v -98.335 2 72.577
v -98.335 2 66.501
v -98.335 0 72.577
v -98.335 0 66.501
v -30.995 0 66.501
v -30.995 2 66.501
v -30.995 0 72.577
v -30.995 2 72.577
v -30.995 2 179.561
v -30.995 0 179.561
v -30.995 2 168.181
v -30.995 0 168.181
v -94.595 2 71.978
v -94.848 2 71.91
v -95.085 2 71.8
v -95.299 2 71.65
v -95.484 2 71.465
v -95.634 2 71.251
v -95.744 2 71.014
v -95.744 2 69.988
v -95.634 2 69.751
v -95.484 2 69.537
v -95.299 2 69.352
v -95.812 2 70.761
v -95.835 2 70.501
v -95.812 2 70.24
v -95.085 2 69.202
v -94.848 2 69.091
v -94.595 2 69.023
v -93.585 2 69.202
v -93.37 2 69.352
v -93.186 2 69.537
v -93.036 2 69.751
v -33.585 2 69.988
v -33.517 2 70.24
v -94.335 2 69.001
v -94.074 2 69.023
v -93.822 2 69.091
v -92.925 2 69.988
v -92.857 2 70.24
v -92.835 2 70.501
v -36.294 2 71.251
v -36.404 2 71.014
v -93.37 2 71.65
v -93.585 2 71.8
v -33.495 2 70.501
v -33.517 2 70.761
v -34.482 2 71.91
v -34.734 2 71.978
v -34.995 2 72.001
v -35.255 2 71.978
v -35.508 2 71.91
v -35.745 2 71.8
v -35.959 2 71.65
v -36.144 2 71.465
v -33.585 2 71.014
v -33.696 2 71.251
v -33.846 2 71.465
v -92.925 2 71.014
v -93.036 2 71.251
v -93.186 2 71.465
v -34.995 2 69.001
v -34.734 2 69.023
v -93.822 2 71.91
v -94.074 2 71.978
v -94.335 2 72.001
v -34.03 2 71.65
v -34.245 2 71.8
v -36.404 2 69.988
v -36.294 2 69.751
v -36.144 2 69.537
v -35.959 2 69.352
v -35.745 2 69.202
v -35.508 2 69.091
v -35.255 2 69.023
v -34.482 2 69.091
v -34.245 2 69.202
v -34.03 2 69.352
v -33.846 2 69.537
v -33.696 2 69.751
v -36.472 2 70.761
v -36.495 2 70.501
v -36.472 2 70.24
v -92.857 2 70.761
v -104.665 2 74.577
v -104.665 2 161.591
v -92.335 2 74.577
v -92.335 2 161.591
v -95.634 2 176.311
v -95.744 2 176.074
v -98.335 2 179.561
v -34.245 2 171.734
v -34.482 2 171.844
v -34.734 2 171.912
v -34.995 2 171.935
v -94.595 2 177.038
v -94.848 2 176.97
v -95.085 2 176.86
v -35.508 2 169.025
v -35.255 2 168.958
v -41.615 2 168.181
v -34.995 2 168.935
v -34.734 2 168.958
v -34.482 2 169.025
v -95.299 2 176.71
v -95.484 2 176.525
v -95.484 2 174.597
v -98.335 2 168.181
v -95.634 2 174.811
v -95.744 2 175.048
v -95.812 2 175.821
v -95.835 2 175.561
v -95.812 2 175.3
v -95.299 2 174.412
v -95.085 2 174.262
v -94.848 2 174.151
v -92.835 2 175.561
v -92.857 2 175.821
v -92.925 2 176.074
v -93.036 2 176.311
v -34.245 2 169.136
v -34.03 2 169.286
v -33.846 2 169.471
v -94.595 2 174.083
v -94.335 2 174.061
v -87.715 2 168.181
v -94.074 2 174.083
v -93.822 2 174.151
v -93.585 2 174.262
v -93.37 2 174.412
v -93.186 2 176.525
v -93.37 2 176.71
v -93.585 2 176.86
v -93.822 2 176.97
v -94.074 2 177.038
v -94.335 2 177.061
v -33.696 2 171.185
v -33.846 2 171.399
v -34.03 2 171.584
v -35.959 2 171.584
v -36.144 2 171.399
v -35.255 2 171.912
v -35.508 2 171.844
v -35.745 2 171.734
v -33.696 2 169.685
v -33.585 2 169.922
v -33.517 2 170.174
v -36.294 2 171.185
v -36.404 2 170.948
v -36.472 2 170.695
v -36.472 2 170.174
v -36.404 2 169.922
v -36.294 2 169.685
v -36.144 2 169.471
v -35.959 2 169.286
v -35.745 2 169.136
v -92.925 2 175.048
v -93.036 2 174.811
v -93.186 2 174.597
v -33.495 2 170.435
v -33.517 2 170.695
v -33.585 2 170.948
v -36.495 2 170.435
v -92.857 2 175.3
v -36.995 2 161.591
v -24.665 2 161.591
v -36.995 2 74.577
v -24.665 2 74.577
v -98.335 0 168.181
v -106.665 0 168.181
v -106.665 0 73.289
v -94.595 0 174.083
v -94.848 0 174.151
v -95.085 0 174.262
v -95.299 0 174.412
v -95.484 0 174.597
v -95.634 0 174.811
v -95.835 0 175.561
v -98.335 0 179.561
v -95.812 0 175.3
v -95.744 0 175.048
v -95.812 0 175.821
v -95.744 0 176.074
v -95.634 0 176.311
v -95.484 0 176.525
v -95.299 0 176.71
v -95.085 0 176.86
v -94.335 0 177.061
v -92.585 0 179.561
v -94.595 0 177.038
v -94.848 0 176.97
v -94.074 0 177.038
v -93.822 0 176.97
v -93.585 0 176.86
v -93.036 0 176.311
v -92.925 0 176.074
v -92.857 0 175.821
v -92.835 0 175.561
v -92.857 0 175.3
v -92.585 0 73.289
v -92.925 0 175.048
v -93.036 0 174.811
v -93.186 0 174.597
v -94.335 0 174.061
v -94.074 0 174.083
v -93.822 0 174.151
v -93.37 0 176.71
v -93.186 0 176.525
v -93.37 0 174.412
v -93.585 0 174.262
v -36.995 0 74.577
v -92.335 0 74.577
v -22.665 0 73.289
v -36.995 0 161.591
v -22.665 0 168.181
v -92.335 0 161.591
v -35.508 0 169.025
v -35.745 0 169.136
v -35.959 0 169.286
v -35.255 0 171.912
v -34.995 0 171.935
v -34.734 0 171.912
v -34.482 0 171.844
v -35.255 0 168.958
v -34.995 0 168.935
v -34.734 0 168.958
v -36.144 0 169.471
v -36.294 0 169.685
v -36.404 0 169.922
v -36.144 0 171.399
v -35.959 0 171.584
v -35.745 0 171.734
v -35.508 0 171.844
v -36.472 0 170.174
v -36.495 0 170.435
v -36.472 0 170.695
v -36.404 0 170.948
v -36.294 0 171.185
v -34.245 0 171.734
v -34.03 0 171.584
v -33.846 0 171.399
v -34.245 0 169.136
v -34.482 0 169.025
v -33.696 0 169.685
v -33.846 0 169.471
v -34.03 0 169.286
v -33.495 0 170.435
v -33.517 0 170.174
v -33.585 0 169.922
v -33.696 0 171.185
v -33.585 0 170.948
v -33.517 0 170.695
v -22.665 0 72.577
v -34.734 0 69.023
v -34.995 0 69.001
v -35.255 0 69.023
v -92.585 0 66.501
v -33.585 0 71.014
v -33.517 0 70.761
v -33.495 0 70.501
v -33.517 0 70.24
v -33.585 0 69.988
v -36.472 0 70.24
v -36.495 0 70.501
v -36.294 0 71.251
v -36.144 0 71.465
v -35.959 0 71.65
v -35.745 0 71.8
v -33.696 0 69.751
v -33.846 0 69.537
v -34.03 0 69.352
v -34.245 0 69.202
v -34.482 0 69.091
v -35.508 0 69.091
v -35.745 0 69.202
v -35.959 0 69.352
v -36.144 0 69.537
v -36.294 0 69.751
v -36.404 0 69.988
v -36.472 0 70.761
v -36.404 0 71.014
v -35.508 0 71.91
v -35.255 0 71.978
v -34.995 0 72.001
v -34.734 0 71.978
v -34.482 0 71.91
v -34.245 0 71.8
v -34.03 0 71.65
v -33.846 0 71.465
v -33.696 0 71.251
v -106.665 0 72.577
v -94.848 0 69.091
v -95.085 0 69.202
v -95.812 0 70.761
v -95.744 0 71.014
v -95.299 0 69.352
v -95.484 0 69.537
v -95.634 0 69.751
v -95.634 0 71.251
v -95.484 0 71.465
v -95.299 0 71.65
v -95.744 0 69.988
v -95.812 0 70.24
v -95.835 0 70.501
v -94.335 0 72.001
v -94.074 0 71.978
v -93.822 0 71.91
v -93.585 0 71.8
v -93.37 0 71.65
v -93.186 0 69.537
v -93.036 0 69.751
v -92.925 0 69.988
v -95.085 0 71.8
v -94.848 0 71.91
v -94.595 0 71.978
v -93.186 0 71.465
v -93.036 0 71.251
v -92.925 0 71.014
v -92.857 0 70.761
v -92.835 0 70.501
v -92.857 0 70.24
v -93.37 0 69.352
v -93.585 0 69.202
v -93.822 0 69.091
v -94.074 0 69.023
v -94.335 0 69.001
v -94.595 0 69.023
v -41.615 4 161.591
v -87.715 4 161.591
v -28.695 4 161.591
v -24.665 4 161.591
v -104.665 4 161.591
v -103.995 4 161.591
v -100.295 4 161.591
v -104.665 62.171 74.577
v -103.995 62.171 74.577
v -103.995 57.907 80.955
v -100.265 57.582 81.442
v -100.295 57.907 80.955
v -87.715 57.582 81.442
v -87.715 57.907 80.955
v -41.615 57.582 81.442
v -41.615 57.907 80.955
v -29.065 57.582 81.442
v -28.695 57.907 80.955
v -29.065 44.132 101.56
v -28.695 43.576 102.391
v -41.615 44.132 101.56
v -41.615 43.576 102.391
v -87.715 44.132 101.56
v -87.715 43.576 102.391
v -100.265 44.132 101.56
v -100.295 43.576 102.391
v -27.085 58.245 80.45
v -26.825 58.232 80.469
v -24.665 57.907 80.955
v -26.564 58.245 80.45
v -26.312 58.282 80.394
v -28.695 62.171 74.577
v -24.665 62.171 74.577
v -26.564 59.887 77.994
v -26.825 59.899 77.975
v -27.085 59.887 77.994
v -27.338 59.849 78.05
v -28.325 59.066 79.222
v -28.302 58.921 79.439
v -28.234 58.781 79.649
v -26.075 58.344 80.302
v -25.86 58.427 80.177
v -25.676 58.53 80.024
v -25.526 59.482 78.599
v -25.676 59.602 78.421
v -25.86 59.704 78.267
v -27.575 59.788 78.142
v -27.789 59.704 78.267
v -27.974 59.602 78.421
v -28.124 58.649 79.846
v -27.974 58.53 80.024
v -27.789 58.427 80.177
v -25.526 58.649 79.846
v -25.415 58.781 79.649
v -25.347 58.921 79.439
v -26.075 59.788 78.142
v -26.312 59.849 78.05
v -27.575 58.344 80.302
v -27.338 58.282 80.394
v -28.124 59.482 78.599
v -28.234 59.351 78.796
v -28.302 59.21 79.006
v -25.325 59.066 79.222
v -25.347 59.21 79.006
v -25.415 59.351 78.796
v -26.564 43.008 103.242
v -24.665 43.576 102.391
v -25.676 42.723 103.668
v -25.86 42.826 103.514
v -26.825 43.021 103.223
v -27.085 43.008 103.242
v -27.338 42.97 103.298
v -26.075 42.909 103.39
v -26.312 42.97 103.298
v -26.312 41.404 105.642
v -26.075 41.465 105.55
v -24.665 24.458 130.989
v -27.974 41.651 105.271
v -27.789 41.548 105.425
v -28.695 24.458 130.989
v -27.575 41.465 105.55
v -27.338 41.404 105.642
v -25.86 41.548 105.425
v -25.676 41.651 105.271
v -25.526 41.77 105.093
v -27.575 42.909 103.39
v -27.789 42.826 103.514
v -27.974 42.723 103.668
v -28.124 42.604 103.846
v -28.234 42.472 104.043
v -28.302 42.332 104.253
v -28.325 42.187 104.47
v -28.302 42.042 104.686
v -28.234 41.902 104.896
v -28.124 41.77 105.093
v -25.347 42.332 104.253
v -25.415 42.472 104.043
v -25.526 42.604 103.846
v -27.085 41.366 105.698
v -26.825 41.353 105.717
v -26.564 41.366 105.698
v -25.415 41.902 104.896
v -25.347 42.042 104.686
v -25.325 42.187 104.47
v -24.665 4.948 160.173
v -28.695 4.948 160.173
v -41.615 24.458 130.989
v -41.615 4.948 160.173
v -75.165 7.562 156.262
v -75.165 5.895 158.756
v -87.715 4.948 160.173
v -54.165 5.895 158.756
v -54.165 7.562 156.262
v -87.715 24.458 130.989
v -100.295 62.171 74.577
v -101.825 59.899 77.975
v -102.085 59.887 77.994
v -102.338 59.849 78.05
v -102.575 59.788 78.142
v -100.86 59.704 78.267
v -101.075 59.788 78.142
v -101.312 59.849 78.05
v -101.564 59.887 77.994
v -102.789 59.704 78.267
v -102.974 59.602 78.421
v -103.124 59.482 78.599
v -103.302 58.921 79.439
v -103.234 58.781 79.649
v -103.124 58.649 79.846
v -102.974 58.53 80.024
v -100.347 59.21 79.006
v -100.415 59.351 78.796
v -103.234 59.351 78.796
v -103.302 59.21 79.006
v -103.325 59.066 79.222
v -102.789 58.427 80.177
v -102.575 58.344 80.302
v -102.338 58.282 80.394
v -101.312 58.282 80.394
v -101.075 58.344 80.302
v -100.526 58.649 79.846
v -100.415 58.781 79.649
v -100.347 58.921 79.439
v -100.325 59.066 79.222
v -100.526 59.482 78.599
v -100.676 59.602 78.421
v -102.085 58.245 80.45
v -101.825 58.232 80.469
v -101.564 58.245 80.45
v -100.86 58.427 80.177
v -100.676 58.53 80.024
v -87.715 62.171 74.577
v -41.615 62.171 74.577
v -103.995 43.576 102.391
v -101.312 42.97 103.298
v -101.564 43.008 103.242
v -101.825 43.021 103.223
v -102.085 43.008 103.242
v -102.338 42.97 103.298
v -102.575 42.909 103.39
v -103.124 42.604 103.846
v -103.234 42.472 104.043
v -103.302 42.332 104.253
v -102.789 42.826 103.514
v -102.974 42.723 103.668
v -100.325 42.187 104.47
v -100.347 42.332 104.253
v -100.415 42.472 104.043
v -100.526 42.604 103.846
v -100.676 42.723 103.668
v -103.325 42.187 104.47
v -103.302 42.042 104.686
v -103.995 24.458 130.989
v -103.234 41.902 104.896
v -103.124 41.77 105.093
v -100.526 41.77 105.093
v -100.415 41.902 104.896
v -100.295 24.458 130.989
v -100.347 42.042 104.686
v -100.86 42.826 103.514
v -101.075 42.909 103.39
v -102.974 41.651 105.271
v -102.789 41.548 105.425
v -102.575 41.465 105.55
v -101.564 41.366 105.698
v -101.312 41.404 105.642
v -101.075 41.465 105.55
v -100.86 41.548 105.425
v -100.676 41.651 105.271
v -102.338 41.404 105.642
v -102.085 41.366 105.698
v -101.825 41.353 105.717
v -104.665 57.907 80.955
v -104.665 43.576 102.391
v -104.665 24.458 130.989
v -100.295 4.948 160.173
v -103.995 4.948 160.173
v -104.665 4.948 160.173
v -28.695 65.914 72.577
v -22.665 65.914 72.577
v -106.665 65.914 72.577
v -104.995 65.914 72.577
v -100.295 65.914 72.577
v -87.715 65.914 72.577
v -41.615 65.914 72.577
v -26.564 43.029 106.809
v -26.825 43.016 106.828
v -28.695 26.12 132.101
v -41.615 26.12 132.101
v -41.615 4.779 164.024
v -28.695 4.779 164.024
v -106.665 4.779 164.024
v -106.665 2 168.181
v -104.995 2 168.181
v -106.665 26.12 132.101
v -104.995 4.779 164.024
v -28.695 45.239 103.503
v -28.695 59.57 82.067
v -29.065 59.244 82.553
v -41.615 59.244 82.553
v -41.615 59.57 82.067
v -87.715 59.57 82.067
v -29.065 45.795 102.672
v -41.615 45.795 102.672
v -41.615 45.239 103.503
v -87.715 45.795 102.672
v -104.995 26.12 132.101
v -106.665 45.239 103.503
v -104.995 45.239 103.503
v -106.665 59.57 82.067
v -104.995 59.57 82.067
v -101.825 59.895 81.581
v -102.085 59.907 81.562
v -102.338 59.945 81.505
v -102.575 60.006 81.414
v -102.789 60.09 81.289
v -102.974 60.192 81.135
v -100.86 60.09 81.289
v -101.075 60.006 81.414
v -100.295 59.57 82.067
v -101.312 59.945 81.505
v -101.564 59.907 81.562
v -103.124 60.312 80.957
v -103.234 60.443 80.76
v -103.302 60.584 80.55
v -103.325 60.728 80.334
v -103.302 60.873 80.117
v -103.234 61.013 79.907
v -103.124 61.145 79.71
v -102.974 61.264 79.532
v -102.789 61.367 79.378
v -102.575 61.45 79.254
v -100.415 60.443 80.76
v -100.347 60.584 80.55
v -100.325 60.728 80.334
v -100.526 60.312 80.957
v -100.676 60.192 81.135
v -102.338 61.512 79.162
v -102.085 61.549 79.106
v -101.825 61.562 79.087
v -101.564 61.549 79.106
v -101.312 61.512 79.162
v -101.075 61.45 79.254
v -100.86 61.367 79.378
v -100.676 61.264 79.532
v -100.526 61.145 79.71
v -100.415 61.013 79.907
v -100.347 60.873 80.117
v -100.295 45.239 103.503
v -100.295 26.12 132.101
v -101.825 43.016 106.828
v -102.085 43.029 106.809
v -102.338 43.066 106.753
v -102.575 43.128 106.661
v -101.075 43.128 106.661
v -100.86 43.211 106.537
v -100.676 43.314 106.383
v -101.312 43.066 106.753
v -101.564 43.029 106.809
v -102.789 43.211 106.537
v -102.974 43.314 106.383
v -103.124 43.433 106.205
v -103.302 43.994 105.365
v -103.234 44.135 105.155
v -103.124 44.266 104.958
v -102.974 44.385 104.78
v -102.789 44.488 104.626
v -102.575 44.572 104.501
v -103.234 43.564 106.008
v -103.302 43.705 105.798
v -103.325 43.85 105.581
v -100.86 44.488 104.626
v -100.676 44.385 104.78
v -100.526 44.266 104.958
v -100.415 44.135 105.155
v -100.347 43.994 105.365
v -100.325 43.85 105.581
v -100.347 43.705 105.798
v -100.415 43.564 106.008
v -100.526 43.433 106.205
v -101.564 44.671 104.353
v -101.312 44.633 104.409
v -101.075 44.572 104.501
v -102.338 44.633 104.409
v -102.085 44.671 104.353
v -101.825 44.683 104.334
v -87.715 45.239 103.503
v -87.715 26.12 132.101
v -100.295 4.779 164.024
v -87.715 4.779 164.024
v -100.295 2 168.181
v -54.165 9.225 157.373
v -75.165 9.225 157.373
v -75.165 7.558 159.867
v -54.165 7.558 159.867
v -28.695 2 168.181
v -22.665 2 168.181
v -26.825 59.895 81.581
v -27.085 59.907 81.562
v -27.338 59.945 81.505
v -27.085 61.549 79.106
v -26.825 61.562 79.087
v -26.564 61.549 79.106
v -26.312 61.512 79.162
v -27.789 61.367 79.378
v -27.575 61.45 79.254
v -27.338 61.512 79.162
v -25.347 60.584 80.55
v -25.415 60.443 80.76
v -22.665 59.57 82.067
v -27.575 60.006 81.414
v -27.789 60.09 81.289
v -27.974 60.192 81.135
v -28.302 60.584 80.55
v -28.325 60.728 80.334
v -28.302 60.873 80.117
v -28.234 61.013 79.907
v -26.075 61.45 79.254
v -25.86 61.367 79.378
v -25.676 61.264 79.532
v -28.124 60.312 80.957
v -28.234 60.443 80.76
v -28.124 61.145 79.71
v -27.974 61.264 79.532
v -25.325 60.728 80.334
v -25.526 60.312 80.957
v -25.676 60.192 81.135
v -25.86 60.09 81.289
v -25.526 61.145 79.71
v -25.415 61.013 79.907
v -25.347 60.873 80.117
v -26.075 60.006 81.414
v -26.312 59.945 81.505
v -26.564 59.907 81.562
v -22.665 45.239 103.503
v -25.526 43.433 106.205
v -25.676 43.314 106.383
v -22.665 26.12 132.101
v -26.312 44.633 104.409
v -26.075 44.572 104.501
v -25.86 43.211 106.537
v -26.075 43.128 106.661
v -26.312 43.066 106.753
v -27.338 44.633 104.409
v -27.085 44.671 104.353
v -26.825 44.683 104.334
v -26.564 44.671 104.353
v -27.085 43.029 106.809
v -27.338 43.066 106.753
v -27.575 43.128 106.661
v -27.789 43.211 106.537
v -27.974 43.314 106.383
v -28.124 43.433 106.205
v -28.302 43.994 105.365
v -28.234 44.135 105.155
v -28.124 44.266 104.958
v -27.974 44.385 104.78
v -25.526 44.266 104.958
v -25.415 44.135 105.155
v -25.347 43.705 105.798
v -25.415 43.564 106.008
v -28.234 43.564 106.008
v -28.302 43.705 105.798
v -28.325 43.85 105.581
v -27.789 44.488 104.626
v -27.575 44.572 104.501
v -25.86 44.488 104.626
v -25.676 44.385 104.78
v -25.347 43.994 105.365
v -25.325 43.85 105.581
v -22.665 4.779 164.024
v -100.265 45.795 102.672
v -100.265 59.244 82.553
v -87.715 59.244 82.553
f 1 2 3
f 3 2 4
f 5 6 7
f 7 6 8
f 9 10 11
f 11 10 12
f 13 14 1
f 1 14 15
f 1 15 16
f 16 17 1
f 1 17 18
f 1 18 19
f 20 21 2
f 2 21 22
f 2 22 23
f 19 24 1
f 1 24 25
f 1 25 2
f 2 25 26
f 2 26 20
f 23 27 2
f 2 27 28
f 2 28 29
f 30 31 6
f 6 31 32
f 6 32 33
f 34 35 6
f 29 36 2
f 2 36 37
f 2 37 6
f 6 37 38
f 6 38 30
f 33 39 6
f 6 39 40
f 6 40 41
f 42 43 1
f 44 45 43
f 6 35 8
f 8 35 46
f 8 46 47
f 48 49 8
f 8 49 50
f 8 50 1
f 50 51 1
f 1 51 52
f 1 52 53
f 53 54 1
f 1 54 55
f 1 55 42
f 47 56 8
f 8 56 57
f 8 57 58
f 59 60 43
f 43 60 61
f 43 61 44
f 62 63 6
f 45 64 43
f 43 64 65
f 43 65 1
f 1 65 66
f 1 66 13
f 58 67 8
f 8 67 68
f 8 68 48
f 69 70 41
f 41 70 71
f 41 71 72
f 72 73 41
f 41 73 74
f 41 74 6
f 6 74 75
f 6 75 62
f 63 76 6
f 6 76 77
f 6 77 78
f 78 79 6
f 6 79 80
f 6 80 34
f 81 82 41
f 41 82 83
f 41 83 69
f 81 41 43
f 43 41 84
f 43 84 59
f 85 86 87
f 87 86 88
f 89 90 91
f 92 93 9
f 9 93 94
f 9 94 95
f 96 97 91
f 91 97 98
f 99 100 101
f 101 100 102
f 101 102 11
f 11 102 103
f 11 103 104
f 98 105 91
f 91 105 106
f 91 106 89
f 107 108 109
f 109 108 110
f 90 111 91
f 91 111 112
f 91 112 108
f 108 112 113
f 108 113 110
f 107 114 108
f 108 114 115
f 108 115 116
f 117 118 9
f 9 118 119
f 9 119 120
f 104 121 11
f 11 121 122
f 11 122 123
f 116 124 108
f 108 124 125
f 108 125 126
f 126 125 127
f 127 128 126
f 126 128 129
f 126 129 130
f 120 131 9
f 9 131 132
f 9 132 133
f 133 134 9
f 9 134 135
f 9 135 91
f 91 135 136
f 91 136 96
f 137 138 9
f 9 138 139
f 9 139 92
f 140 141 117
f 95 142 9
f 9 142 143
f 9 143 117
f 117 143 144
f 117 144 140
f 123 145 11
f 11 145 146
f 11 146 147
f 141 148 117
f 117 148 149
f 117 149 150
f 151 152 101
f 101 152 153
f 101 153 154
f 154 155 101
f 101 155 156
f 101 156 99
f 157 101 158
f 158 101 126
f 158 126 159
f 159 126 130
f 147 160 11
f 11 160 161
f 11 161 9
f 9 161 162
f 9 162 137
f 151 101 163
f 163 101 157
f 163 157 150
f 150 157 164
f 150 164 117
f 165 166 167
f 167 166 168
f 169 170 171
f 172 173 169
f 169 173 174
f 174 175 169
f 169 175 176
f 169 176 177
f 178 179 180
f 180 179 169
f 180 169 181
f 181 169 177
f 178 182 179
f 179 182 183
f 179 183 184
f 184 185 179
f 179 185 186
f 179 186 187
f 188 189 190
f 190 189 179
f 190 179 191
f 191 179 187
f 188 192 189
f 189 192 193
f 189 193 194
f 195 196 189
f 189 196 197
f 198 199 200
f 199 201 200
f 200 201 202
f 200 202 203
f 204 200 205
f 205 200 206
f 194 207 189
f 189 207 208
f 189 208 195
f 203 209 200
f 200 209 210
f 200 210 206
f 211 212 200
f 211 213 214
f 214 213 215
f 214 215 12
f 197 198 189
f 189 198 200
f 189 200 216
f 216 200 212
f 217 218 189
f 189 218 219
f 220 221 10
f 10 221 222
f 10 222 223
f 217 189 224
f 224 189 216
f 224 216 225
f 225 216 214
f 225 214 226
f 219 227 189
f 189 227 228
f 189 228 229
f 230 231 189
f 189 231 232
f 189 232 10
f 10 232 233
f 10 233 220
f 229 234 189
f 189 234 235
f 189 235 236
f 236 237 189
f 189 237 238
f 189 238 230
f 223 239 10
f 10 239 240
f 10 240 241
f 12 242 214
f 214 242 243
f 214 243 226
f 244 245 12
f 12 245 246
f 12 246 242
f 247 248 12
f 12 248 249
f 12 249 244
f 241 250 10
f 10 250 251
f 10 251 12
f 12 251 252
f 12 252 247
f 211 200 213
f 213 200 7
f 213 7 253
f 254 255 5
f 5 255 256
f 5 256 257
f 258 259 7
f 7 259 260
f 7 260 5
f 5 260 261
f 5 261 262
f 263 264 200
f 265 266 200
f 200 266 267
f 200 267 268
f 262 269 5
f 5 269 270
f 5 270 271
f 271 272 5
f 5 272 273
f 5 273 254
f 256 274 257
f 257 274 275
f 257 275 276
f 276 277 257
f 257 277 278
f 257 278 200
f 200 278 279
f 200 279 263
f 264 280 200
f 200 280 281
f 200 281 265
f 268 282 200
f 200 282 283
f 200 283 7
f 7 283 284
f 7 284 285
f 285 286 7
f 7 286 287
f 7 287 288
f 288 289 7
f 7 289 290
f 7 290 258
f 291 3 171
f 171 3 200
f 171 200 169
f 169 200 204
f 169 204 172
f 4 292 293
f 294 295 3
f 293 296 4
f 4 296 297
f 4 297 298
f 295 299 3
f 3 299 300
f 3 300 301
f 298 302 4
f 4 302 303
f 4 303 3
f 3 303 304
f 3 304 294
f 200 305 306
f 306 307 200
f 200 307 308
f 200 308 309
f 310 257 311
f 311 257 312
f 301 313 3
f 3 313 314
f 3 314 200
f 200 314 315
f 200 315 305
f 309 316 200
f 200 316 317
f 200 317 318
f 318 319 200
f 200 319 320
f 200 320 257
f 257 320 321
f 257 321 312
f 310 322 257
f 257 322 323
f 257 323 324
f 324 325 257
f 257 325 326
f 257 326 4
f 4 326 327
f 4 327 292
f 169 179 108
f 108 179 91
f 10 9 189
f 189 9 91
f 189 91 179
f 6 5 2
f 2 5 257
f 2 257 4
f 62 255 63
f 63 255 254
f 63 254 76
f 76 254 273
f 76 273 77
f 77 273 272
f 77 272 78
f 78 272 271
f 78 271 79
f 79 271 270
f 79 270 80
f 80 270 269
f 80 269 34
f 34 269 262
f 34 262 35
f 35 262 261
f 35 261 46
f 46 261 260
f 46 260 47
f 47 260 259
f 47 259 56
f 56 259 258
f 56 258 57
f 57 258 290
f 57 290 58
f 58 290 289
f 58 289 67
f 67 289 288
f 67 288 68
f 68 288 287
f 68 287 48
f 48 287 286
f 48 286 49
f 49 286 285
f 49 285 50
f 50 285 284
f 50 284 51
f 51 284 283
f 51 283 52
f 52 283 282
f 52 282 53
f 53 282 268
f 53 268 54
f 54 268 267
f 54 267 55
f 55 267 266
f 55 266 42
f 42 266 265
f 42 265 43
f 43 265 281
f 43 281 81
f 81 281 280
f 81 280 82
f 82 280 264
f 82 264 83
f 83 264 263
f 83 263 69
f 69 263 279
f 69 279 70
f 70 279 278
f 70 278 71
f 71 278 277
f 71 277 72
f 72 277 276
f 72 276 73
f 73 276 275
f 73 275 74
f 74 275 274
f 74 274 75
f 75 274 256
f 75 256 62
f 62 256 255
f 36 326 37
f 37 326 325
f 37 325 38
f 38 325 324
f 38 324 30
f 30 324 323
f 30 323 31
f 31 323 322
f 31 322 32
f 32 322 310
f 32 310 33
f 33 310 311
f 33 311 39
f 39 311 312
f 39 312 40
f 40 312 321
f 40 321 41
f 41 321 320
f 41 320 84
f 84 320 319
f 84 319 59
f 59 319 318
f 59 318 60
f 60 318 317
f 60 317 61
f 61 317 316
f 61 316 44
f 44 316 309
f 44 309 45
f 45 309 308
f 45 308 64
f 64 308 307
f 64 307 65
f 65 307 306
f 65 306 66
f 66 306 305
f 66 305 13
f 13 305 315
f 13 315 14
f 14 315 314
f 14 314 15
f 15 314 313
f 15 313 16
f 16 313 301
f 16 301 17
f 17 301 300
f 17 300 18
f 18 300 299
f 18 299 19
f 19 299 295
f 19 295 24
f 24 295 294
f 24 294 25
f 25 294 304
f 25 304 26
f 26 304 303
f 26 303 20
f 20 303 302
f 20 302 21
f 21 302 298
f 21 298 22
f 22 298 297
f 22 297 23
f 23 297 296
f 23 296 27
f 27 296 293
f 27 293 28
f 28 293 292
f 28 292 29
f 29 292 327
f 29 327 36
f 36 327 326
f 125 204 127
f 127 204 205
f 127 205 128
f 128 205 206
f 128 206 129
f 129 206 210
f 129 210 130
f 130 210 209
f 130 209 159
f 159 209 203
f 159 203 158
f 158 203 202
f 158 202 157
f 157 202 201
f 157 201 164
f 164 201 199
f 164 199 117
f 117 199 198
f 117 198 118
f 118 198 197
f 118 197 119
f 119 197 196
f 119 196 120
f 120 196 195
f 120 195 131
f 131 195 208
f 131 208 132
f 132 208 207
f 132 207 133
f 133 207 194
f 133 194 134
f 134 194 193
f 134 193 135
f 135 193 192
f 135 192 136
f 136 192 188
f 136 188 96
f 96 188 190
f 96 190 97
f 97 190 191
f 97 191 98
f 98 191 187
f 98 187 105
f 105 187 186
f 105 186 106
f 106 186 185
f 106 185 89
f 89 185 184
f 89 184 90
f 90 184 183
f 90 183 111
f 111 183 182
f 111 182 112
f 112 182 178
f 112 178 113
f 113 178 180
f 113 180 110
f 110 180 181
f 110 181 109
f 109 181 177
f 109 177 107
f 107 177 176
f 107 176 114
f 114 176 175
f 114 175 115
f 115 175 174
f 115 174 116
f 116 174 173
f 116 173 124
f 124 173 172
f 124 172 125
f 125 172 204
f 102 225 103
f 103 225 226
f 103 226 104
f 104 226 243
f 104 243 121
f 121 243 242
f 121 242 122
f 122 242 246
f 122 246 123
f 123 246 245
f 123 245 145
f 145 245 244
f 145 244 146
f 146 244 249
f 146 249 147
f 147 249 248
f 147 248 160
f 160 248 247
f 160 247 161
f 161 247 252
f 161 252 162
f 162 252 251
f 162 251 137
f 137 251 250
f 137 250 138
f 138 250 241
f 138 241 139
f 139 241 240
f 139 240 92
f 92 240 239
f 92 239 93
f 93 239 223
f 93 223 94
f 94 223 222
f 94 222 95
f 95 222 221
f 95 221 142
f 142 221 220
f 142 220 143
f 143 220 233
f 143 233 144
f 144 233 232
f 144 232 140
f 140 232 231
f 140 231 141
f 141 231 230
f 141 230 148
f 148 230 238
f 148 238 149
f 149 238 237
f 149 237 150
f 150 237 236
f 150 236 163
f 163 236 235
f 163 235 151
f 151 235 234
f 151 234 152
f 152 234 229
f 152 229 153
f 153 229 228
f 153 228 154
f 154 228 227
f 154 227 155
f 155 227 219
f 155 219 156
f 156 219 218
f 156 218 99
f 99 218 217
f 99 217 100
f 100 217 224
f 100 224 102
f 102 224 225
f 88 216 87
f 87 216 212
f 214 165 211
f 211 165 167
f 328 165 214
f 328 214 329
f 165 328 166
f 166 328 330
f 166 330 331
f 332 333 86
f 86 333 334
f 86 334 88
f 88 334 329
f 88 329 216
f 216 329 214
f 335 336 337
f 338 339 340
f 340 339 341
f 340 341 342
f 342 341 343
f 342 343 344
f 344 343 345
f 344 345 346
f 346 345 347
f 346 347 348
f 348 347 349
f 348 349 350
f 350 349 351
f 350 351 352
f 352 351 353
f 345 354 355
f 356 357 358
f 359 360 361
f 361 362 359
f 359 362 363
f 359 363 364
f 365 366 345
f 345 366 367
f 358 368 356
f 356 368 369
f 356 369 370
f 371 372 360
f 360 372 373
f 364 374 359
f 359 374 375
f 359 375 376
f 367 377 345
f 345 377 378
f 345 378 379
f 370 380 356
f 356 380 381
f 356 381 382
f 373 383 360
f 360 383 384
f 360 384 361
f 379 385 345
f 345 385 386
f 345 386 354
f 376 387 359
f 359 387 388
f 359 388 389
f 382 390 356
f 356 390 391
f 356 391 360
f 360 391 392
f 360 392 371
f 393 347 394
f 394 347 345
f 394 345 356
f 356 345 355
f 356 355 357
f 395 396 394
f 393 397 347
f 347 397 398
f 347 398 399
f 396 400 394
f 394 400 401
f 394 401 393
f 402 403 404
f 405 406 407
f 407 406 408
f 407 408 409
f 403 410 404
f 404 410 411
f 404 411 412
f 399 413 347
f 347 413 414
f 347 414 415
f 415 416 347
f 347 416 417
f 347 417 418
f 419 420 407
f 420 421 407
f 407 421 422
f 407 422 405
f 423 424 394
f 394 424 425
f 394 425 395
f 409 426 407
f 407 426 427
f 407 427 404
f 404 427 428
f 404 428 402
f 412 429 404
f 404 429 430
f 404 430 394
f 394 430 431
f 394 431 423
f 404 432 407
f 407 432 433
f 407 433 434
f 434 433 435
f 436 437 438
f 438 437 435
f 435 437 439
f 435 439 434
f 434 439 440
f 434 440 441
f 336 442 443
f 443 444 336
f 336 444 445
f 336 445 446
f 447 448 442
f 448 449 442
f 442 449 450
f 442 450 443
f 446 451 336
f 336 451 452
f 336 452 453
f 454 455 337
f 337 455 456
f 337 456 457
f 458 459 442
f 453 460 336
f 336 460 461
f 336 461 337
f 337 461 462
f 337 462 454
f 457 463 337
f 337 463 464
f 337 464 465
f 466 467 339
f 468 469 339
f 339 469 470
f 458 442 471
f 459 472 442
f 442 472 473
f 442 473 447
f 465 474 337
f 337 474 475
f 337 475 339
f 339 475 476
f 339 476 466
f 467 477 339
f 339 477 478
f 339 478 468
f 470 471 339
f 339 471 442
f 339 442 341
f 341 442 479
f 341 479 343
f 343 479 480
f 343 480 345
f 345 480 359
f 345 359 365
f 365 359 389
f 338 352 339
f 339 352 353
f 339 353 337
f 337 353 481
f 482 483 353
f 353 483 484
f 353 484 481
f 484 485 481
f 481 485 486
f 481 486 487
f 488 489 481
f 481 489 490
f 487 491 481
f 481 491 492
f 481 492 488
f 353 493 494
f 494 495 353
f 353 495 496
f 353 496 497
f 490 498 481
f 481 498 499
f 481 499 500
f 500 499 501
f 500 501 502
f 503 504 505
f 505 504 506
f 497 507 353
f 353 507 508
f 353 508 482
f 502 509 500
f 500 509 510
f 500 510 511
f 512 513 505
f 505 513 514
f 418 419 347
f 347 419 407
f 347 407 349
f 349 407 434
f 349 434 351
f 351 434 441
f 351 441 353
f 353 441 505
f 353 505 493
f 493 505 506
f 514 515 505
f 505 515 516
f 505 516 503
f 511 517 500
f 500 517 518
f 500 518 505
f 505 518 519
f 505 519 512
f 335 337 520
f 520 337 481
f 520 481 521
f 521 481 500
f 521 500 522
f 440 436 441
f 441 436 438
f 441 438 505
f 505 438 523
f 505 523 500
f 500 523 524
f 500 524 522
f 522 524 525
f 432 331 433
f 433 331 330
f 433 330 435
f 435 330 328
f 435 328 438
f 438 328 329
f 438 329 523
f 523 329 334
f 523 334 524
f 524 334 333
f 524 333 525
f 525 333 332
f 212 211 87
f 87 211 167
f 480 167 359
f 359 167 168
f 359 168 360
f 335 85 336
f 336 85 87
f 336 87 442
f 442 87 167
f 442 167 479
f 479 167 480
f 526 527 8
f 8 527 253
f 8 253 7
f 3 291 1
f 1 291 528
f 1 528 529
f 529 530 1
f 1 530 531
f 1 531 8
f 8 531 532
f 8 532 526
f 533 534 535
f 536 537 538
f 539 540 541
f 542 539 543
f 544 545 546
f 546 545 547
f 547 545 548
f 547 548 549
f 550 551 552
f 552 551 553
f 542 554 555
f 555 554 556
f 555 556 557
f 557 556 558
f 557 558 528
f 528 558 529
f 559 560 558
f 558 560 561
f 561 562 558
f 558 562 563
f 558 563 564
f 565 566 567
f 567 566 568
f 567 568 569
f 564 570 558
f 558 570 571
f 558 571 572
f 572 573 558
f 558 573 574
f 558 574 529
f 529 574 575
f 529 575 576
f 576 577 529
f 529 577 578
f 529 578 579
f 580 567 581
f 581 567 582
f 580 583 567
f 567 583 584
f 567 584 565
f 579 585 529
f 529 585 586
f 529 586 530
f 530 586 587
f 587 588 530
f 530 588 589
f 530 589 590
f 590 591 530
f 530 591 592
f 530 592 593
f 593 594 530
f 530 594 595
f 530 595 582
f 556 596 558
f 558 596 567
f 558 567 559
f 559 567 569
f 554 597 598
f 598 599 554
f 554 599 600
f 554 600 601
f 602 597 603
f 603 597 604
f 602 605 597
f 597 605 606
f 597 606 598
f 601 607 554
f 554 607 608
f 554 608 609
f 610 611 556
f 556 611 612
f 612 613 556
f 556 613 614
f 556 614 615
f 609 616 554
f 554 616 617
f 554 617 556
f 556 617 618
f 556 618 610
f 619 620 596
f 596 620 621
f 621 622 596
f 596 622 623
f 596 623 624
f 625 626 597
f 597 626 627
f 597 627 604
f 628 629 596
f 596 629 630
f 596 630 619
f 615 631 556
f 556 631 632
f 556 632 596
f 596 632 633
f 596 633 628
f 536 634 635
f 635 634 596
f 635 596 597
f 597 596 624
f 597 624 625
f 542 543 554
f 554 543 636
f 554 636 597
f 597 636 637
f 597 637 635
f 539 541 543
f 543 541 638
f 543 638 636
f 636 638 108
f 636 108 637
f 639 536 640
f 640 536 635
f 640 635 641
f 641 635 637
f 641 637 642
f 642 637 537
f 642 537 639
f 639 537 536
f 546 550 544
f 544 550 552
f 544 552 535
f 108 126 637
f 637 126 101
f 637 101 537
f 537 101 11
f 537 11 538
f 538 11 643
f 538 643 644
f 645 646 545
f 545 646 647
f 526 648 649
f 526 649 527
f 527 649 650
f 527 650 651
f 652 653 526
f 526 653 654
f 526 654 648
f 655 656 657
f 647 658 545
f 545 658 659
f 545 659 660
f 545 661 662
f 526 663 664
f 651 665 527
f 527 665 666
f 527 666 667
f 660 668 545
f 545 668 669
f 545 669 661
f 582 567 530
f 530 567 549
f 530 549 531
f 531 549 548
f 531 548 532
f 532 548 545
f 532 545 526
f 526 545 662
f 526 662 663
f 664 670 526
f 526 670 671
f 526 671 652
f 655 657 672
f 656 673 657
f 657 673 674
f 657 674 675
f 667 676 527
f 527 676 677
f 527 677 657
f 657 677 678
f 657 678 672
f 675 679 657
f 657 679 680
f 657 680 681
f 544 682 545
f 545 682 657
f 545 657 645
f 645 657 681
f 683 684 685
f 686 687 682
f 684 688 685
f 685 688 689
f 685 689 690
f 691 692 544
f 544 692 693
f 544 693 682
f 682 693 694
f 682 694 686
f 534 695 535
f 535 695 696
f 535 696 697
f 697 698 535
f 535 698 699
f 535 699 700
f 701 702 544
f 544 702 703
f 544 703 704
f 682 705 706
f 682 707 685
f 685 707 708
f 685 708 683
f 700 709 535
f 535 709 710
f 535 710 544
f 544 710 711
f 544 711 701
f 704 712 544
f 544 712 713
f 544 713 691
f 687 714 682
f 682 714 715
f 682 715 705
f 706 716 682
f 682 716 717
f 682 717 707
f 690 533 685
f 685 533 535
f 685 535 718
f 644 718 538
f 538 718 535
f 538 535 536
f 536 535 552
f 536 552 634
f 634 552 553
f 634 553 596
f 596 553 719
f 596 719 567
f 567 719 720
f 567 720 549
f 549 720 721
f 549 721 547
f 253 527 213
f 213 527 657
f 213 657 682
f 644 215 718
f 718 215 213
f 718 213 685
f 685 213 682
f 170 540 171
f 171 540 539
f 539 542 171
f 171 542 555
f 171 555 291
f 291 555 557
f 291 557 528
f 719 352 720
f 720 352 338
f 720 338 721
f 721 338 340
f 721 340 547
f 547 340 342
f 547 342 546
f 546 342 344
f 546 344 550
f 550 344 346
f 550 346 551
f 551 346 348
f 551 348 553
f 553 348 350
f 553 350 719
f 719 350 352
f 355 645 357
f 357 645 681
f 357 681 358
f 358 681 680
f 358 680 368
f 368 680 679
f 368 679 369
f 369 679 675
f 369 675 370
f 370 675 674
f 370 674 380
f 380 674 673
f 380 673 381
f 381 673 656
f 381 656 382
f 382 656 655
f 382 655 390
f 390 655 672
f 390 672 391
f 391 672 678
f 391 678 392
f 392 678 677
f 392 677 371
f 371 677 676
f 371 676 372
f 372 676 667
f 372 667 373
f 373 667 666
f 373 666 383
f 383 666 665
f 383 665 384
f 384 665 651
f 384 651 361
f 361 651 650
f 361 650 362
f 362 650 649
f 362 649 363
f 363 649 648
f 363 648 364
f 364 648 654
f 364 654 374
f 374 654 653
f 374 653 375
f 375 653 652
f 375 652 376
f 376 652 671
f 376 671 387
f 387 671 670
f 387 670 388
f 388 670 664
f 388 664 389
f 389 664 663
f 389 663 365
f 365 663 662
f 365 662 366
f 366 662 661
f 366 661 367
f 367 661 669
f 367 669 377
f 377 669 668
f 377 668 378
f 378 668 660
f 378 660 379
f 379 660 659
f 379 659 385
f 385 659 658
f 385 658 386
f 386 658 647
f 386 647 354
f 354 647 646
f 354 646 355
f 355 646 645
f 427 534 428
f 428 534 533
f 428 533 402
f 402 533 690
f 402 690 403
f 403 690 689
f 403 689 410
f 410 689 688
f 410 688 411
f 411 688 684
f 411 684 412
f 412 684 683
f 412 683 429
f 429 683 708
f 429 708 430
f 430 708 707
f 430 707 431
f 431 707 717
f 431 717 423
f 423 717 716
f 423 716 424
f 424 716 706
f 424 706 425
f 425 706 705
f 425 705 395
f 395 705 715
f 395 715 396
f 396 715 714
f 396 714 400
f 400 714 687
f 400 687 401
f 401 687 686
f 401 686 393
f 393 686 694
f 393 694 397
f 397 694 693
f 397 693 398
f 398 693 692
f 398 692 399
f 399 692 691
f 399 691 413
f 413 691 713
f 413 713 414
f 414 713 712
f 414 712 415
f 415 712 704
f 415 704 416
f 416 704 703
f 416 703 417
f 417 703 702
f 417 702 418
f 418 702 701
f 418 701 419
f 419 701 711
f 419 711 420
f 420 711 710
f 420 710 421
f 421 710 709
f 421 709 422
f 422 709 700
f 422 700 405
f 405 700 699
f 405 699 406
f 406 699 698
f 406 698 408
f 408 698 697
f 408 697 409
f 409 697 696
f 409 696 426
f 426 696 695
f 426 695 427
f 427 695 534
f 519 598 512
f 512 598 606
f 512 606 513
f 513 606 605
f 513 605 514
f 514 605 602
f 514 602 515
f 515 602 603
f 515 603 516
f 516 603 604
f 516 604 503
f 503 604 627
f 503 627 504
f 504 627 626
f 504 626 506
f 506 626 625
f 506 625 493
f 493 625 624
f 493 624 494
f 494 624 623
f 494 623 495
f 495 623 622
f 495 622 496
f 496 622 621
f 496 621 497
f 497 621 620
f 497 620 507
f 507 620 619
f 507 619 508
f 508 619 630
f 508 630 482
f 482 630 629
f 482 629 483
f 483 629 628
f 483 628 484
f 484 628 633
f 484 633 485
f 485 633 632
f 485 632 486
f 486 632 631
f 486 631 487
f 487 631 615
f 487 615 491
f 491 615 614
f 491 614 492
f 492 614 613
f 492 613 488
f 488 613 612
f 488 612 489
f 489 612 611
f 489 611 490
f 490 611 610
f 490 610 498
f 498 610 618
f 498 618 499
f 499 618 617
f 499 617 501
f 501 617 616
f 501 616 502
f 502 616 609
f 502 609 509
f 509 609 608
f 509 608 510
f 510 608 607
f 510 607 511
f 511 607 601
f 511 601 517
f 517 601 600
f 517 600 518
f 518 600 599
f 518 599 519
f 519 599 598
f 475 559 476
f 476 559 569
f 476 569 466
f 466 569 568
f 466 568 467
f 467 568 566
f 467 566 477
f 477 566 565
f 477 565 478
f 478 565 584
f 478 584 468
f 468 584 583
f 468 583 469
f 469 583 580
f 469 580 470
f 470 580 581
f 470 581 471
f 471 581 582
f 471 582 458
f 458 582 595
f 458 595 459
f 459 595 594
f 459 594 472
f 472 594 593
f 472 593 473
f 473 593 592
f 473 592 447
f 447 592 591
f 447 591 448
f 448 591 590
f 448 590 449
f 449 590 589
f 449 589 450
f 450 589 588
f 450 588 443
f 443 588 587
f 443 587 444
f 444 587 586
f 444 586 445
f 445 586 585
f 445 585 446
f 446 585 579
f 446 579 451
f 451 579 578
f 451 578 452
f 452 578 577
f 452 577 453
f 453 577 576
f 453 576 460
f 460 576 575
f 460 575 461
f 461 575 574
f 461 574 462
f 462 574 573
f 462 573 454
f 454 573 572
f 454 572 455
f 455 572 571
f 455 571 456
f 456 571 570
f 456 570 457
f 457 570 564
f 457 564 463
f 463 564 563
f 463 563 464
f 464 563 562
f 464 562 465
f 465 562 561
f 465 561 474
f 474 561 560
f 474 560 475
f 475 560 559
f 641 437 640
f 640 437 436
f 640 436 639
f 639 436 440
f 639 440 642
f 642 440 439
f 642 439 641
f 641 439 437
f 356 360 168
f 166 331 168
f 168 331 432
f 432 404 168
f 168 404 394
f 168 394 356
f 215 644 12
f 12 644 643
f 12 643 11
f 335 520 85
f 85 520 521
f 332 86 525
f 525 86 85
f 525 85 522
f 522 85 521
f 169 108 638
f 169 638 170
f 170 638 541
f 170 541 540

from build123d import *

# Parameters (mm, degrees)
SKETCH1_W           = 67.34
SKETCH1_H           = 113.06
SKETCH1_R           = 1.5
SKETCH1_W_2         = 55.34
SKETCH1_H_2         = 101.06
BOSS_EXTRUDE1_DEPTH = 2
BOSS_EXTRUDE2_DEPTH = 42
SKETCH4_W           = 55.34
SKETCH4_H           = 2
BOSS_EXTRUDE5_DEPTH = 11.970099
CUT_EXTRUDE1_REACH  = 60.174
SKETCH5_R           = 1.5
SKETCH5_W           = 71.2
SKETCH5_H           = 24.2
SKETCH5_W_2         = 21
SKETCH5_H_2         = 3
BOSS_EXTRUDE6_DEPTH = 2
SKETCH7_W           = 8.33
SKETCH7_H           = 95.603562999
BOSS_EXTRUDE7_DEPTH = 2
SKETCH8_W           = 55.34
SKETCH8_H           = 2
BOSS_EXTRUDE8_DEPTH = 2.076588


with BuildPart() as part:
    # Sketch1 → Boss-Extrude1 (new body)
    with BuildSketch(Plane(origin=(0, 0, 0), x_dir=(1, 0, 0), z_dir=(0, 1, 0))):
        with Locations((-64.664649644, -123.030692549)):
            Rectangle(SKETCH1_W, SKETCH1_H)
        with Locations((-34.994649644, -70.500692549)):
            Circle(SKETCH1_R, mode=Mode.SUBTRACT)
        with Locations((-94.334649644, -70.500692549)):
            Circle(SKETCH1_R, mode=Mode.SUBTRACT)
        with Locations((-94.334649644, -175.560692549)):
            Circle(SKETCH1_R, mode=Mode.SUBTRACT)
        with Locations((-34.994649644, -170.434906111)):
            Circle(SKETCH1_R, mode=Mode.SUBTRACT)
        with Locations((-64.664649644, -123.030692549)):
            Rectangle(SKETCH1_W_2, SKETCH1_H_2, mode=Mode.SUBTRACT)
    extrude(amount=BOSS_EXTRUDE1_DEPTH)

    # Sketch3 → Boss-Extrude2 (add, symmetric)
    with BuildSketch(Plane(origin=(-64.664649644, 0, 0), x_dir=(0, 0, -1), z_dir=(1, 0, 0))):
        Polygon((-161.590593962, 4), (-161.590593962, 2), (-168.180843703, 2), (-72.577280704, 65.913681963), (-72.577280704, 2), (-74.577280704, 2), (-74.577280704, 4), (-74.577280704, 62.1708574), align=None)
    extrude(amount=BOSS_EXTRUDE2_DEPTH, both=True)

    # Sketch4 → Boss-Extrude5 (add)
    with BuildSketch(Plane(origin=(0, 0, 173.560692549), x_dir=(-1, 0, 0), z_dir=(0, 0, -1))):
        with Locations((64.664649644, 1)):
            Rectangle(SKETCH4_W, SKETCH4_H)
    extrude(amount=BOSS_EXTRUDE5_DEPTH)

    # Sketch5 → Cut-Extrude1 (cut, up to next)
    with BuildSketch(Plane(origin=(0, 79.087200487, 52.872027158), x_dir=(1, 0, 0), z_dir=(0, 0.83133533, 0.555771148)), mode=Mode.PRIVATE) as cut_extrude1_sk1:
        with Locations((-26.824649644, -33.033134975)):
            Circle(SKETCH5_R)
    cut_extrude1_tool1 = extrude(cut_extrude1_sk1.sketch, amount=-CUT_EXTRUDE1_REACH, mode=Mode.PRIVATE) & part.part
    add(cut_extrude1_tool1.solids().sort_by_distance((-26.82465, 60.728337, 80.333639))[0], mode=Mode.SUBTRACT)
    # Sketch5 → Cut-Extrude1 (cut, up to next)
    with BuildSketch(Plane(origin=(0, 79.087200487, 52.872027158), x_dir=(1, 0, 0), z_dir=(0, 0.83133533, 0.555771148)), mode=Mode.PRIVATE) as cut_extrude1_sk2:
        with Locations((-26.824649644, -63.403134975)):
            Circle(SKETCH5_R)
    cut_extrude1_tool2 = extrude(cut_extrude1_sk2.sketch, amount=-CUT_EXTRUDE1_REACH, mode=Mode.PRIVATE) & part.part
    add(cut_extrude1_tool2.solids().sort_by_distance((-26.82465, 43.849567, 105.581293))[0], mode=Mode.SUBTRACT)
    # Sketch5 → Cut-Extrude1 (cut, up to next)
    with BuildSketch(Plane(origin=(0, 79.087200487, 52.872027158), x_dir=(1, 0, 0), z_dir=(0, 0.83133533, 0.555771148)), mode=Mode.PRIVATE) as cut_extrude1_sk3:
        with Locations((-101.824649644, -63.403134975)):
            Circle(SKETCH5_R)
    cut_extrude1_tool3 = extrude(cut_extrude1_sk3.sketch, amount=-CUT_EXTRUDE1_REACH, mode=Mode.PRIVATE) & part.part
    add(cut_extrude1_tool3.solids().sort_by_distance((-101.82465, 43.849567, 105.581293))[0], mode=Mode.SUBTRACT)
    # Sketch5 → Cut-Extrude1 (cut, up to next)
    with BuildSketch(Plane(origin=(0, 79.087200487, 52.872027158), x_dir=(1, 0, 0), z_dir=(0, 0.83133533, 0.555771148)), mode=Mode.PRIVATE) as cut_extrude1_sk4:
        with Locations((-101.824649644, -33.033134975)):
            Circle(SKETCH5_R)
    cut_extrude1_tool4 = extrude(cut_extrude1_sk4.sketch, amount=-CUT_EXTRUDE1_REACH, mode=Mode.PRIVATE) & part.part
    add(cut_extrude1_tool4.solids().sort_by_distance((-101.82465, 60.728337, 80.333639))[0], mode=Mode.SUBTRACT)
    # Sketch5 → Cut-Extrude1 (cut, up to next)
    with BuildSketch(Plane(origin=(0, 79.087200487, 52.872027158), x_dir=(1, 0, 0), z_dir=(0, 0.83133533, 0.555771148)), mode=Mode.PRIVATE) as cut_extrude1_sk5:
        with Locations((-64.664649644, -47.803134975)):
            Rectangle(SKETCH5_W, SKETCH5_H)
    cut_extrude1_tool5 = extrude(cut_extrude1_sk5.sketch, amount=-CUT_EXTRUDE1_REACH, mode=Mode.PRIVATE) & part.part
    add(cut_extrude1_tool5.solids().sort_by_distance((-64.66465, 52.519597, 92.612462))[0], mode=Mode.SUBTRACT)
    # Sketch5 → Cut-Extrude1 (cut, up to next)
    with BuildSketch(Plane(origin=(0, 79.087200487, 52.872027158), x_dir=(1, 0, 0), z_dir=(0, 0.83133533, 0.555771148)), mode=Mode.PRIVATE) as cut_extrude1_sk6:
        with Locations((-64.664649644, -127.203134975)):
            Rectangle(SKETCH5_W_2, SKETCH5_H_2)
    cut_extrude1_tool6 = extrude(cut_extrude1_sk6.sketch, amount=-CUT_EXTRUDE1_REACH, mode=Mode.PRIVATE) & part.part
    add(cut_extrude1_tool6.solids().sort_by_distance((-64.66465, 8.391368, 158.620487))[0], mode=Mode.SUBTRACT)

    # Sketch6 → Boss-Extrude6 (add)
    with BuildSketch(Plane(origin=(-22.664649644, 0, 0), x_dir=(0, 0, -1), z_dir=(1, 0, 0))):
        Polygon((-168.180843703, 2), (-168.180843703, 0), (-72.577280704, 0), (-72.577280704, 2), (-72.577280704, 65.913681963), align=None)
    boss_extrude6 = extrude(amount=-BOSS_EXTRUDE6_DEPTH)

    # Sketch7 → Boss-Extrude7 (add)
    with BuildSketch(Plane.XZ.offset(-2)):
        with Locations((-28.829649644, 120.379062204)):
            Rectangle(SKETCH7_W, SKETCH7_H)
    boss_extrude7 = extrude(amount=BOSS_EXTRUDE7_DEPTH)

    # Mirror1: Boss-Extrude6, Boss-Extrude7 across plane
    add(boss_extrude6.mirror(Plane(origin=(-64.664649644, 0, 0), x_dir=(0, 0, 1), z_dir=(1, 0, 0))))
    add(boss_extrude7.mirror(Plane(origin=(-64.664649644, 0, 0), x_dir=(0, 0, 1), z_dir=(1, 0, 0))))

    # Sketch8 → Boss-Extrude8 (add)
    with BuildSketch(Plane.XY.offset(72.500692549)):
        with Locations((-64.664649644, 1)):
            Rectangle(SKETCH8_W, SKETCH8_H)
    extrude(amount=BOSS_EXTRUDE8_DEPTH)


solid = part.part
